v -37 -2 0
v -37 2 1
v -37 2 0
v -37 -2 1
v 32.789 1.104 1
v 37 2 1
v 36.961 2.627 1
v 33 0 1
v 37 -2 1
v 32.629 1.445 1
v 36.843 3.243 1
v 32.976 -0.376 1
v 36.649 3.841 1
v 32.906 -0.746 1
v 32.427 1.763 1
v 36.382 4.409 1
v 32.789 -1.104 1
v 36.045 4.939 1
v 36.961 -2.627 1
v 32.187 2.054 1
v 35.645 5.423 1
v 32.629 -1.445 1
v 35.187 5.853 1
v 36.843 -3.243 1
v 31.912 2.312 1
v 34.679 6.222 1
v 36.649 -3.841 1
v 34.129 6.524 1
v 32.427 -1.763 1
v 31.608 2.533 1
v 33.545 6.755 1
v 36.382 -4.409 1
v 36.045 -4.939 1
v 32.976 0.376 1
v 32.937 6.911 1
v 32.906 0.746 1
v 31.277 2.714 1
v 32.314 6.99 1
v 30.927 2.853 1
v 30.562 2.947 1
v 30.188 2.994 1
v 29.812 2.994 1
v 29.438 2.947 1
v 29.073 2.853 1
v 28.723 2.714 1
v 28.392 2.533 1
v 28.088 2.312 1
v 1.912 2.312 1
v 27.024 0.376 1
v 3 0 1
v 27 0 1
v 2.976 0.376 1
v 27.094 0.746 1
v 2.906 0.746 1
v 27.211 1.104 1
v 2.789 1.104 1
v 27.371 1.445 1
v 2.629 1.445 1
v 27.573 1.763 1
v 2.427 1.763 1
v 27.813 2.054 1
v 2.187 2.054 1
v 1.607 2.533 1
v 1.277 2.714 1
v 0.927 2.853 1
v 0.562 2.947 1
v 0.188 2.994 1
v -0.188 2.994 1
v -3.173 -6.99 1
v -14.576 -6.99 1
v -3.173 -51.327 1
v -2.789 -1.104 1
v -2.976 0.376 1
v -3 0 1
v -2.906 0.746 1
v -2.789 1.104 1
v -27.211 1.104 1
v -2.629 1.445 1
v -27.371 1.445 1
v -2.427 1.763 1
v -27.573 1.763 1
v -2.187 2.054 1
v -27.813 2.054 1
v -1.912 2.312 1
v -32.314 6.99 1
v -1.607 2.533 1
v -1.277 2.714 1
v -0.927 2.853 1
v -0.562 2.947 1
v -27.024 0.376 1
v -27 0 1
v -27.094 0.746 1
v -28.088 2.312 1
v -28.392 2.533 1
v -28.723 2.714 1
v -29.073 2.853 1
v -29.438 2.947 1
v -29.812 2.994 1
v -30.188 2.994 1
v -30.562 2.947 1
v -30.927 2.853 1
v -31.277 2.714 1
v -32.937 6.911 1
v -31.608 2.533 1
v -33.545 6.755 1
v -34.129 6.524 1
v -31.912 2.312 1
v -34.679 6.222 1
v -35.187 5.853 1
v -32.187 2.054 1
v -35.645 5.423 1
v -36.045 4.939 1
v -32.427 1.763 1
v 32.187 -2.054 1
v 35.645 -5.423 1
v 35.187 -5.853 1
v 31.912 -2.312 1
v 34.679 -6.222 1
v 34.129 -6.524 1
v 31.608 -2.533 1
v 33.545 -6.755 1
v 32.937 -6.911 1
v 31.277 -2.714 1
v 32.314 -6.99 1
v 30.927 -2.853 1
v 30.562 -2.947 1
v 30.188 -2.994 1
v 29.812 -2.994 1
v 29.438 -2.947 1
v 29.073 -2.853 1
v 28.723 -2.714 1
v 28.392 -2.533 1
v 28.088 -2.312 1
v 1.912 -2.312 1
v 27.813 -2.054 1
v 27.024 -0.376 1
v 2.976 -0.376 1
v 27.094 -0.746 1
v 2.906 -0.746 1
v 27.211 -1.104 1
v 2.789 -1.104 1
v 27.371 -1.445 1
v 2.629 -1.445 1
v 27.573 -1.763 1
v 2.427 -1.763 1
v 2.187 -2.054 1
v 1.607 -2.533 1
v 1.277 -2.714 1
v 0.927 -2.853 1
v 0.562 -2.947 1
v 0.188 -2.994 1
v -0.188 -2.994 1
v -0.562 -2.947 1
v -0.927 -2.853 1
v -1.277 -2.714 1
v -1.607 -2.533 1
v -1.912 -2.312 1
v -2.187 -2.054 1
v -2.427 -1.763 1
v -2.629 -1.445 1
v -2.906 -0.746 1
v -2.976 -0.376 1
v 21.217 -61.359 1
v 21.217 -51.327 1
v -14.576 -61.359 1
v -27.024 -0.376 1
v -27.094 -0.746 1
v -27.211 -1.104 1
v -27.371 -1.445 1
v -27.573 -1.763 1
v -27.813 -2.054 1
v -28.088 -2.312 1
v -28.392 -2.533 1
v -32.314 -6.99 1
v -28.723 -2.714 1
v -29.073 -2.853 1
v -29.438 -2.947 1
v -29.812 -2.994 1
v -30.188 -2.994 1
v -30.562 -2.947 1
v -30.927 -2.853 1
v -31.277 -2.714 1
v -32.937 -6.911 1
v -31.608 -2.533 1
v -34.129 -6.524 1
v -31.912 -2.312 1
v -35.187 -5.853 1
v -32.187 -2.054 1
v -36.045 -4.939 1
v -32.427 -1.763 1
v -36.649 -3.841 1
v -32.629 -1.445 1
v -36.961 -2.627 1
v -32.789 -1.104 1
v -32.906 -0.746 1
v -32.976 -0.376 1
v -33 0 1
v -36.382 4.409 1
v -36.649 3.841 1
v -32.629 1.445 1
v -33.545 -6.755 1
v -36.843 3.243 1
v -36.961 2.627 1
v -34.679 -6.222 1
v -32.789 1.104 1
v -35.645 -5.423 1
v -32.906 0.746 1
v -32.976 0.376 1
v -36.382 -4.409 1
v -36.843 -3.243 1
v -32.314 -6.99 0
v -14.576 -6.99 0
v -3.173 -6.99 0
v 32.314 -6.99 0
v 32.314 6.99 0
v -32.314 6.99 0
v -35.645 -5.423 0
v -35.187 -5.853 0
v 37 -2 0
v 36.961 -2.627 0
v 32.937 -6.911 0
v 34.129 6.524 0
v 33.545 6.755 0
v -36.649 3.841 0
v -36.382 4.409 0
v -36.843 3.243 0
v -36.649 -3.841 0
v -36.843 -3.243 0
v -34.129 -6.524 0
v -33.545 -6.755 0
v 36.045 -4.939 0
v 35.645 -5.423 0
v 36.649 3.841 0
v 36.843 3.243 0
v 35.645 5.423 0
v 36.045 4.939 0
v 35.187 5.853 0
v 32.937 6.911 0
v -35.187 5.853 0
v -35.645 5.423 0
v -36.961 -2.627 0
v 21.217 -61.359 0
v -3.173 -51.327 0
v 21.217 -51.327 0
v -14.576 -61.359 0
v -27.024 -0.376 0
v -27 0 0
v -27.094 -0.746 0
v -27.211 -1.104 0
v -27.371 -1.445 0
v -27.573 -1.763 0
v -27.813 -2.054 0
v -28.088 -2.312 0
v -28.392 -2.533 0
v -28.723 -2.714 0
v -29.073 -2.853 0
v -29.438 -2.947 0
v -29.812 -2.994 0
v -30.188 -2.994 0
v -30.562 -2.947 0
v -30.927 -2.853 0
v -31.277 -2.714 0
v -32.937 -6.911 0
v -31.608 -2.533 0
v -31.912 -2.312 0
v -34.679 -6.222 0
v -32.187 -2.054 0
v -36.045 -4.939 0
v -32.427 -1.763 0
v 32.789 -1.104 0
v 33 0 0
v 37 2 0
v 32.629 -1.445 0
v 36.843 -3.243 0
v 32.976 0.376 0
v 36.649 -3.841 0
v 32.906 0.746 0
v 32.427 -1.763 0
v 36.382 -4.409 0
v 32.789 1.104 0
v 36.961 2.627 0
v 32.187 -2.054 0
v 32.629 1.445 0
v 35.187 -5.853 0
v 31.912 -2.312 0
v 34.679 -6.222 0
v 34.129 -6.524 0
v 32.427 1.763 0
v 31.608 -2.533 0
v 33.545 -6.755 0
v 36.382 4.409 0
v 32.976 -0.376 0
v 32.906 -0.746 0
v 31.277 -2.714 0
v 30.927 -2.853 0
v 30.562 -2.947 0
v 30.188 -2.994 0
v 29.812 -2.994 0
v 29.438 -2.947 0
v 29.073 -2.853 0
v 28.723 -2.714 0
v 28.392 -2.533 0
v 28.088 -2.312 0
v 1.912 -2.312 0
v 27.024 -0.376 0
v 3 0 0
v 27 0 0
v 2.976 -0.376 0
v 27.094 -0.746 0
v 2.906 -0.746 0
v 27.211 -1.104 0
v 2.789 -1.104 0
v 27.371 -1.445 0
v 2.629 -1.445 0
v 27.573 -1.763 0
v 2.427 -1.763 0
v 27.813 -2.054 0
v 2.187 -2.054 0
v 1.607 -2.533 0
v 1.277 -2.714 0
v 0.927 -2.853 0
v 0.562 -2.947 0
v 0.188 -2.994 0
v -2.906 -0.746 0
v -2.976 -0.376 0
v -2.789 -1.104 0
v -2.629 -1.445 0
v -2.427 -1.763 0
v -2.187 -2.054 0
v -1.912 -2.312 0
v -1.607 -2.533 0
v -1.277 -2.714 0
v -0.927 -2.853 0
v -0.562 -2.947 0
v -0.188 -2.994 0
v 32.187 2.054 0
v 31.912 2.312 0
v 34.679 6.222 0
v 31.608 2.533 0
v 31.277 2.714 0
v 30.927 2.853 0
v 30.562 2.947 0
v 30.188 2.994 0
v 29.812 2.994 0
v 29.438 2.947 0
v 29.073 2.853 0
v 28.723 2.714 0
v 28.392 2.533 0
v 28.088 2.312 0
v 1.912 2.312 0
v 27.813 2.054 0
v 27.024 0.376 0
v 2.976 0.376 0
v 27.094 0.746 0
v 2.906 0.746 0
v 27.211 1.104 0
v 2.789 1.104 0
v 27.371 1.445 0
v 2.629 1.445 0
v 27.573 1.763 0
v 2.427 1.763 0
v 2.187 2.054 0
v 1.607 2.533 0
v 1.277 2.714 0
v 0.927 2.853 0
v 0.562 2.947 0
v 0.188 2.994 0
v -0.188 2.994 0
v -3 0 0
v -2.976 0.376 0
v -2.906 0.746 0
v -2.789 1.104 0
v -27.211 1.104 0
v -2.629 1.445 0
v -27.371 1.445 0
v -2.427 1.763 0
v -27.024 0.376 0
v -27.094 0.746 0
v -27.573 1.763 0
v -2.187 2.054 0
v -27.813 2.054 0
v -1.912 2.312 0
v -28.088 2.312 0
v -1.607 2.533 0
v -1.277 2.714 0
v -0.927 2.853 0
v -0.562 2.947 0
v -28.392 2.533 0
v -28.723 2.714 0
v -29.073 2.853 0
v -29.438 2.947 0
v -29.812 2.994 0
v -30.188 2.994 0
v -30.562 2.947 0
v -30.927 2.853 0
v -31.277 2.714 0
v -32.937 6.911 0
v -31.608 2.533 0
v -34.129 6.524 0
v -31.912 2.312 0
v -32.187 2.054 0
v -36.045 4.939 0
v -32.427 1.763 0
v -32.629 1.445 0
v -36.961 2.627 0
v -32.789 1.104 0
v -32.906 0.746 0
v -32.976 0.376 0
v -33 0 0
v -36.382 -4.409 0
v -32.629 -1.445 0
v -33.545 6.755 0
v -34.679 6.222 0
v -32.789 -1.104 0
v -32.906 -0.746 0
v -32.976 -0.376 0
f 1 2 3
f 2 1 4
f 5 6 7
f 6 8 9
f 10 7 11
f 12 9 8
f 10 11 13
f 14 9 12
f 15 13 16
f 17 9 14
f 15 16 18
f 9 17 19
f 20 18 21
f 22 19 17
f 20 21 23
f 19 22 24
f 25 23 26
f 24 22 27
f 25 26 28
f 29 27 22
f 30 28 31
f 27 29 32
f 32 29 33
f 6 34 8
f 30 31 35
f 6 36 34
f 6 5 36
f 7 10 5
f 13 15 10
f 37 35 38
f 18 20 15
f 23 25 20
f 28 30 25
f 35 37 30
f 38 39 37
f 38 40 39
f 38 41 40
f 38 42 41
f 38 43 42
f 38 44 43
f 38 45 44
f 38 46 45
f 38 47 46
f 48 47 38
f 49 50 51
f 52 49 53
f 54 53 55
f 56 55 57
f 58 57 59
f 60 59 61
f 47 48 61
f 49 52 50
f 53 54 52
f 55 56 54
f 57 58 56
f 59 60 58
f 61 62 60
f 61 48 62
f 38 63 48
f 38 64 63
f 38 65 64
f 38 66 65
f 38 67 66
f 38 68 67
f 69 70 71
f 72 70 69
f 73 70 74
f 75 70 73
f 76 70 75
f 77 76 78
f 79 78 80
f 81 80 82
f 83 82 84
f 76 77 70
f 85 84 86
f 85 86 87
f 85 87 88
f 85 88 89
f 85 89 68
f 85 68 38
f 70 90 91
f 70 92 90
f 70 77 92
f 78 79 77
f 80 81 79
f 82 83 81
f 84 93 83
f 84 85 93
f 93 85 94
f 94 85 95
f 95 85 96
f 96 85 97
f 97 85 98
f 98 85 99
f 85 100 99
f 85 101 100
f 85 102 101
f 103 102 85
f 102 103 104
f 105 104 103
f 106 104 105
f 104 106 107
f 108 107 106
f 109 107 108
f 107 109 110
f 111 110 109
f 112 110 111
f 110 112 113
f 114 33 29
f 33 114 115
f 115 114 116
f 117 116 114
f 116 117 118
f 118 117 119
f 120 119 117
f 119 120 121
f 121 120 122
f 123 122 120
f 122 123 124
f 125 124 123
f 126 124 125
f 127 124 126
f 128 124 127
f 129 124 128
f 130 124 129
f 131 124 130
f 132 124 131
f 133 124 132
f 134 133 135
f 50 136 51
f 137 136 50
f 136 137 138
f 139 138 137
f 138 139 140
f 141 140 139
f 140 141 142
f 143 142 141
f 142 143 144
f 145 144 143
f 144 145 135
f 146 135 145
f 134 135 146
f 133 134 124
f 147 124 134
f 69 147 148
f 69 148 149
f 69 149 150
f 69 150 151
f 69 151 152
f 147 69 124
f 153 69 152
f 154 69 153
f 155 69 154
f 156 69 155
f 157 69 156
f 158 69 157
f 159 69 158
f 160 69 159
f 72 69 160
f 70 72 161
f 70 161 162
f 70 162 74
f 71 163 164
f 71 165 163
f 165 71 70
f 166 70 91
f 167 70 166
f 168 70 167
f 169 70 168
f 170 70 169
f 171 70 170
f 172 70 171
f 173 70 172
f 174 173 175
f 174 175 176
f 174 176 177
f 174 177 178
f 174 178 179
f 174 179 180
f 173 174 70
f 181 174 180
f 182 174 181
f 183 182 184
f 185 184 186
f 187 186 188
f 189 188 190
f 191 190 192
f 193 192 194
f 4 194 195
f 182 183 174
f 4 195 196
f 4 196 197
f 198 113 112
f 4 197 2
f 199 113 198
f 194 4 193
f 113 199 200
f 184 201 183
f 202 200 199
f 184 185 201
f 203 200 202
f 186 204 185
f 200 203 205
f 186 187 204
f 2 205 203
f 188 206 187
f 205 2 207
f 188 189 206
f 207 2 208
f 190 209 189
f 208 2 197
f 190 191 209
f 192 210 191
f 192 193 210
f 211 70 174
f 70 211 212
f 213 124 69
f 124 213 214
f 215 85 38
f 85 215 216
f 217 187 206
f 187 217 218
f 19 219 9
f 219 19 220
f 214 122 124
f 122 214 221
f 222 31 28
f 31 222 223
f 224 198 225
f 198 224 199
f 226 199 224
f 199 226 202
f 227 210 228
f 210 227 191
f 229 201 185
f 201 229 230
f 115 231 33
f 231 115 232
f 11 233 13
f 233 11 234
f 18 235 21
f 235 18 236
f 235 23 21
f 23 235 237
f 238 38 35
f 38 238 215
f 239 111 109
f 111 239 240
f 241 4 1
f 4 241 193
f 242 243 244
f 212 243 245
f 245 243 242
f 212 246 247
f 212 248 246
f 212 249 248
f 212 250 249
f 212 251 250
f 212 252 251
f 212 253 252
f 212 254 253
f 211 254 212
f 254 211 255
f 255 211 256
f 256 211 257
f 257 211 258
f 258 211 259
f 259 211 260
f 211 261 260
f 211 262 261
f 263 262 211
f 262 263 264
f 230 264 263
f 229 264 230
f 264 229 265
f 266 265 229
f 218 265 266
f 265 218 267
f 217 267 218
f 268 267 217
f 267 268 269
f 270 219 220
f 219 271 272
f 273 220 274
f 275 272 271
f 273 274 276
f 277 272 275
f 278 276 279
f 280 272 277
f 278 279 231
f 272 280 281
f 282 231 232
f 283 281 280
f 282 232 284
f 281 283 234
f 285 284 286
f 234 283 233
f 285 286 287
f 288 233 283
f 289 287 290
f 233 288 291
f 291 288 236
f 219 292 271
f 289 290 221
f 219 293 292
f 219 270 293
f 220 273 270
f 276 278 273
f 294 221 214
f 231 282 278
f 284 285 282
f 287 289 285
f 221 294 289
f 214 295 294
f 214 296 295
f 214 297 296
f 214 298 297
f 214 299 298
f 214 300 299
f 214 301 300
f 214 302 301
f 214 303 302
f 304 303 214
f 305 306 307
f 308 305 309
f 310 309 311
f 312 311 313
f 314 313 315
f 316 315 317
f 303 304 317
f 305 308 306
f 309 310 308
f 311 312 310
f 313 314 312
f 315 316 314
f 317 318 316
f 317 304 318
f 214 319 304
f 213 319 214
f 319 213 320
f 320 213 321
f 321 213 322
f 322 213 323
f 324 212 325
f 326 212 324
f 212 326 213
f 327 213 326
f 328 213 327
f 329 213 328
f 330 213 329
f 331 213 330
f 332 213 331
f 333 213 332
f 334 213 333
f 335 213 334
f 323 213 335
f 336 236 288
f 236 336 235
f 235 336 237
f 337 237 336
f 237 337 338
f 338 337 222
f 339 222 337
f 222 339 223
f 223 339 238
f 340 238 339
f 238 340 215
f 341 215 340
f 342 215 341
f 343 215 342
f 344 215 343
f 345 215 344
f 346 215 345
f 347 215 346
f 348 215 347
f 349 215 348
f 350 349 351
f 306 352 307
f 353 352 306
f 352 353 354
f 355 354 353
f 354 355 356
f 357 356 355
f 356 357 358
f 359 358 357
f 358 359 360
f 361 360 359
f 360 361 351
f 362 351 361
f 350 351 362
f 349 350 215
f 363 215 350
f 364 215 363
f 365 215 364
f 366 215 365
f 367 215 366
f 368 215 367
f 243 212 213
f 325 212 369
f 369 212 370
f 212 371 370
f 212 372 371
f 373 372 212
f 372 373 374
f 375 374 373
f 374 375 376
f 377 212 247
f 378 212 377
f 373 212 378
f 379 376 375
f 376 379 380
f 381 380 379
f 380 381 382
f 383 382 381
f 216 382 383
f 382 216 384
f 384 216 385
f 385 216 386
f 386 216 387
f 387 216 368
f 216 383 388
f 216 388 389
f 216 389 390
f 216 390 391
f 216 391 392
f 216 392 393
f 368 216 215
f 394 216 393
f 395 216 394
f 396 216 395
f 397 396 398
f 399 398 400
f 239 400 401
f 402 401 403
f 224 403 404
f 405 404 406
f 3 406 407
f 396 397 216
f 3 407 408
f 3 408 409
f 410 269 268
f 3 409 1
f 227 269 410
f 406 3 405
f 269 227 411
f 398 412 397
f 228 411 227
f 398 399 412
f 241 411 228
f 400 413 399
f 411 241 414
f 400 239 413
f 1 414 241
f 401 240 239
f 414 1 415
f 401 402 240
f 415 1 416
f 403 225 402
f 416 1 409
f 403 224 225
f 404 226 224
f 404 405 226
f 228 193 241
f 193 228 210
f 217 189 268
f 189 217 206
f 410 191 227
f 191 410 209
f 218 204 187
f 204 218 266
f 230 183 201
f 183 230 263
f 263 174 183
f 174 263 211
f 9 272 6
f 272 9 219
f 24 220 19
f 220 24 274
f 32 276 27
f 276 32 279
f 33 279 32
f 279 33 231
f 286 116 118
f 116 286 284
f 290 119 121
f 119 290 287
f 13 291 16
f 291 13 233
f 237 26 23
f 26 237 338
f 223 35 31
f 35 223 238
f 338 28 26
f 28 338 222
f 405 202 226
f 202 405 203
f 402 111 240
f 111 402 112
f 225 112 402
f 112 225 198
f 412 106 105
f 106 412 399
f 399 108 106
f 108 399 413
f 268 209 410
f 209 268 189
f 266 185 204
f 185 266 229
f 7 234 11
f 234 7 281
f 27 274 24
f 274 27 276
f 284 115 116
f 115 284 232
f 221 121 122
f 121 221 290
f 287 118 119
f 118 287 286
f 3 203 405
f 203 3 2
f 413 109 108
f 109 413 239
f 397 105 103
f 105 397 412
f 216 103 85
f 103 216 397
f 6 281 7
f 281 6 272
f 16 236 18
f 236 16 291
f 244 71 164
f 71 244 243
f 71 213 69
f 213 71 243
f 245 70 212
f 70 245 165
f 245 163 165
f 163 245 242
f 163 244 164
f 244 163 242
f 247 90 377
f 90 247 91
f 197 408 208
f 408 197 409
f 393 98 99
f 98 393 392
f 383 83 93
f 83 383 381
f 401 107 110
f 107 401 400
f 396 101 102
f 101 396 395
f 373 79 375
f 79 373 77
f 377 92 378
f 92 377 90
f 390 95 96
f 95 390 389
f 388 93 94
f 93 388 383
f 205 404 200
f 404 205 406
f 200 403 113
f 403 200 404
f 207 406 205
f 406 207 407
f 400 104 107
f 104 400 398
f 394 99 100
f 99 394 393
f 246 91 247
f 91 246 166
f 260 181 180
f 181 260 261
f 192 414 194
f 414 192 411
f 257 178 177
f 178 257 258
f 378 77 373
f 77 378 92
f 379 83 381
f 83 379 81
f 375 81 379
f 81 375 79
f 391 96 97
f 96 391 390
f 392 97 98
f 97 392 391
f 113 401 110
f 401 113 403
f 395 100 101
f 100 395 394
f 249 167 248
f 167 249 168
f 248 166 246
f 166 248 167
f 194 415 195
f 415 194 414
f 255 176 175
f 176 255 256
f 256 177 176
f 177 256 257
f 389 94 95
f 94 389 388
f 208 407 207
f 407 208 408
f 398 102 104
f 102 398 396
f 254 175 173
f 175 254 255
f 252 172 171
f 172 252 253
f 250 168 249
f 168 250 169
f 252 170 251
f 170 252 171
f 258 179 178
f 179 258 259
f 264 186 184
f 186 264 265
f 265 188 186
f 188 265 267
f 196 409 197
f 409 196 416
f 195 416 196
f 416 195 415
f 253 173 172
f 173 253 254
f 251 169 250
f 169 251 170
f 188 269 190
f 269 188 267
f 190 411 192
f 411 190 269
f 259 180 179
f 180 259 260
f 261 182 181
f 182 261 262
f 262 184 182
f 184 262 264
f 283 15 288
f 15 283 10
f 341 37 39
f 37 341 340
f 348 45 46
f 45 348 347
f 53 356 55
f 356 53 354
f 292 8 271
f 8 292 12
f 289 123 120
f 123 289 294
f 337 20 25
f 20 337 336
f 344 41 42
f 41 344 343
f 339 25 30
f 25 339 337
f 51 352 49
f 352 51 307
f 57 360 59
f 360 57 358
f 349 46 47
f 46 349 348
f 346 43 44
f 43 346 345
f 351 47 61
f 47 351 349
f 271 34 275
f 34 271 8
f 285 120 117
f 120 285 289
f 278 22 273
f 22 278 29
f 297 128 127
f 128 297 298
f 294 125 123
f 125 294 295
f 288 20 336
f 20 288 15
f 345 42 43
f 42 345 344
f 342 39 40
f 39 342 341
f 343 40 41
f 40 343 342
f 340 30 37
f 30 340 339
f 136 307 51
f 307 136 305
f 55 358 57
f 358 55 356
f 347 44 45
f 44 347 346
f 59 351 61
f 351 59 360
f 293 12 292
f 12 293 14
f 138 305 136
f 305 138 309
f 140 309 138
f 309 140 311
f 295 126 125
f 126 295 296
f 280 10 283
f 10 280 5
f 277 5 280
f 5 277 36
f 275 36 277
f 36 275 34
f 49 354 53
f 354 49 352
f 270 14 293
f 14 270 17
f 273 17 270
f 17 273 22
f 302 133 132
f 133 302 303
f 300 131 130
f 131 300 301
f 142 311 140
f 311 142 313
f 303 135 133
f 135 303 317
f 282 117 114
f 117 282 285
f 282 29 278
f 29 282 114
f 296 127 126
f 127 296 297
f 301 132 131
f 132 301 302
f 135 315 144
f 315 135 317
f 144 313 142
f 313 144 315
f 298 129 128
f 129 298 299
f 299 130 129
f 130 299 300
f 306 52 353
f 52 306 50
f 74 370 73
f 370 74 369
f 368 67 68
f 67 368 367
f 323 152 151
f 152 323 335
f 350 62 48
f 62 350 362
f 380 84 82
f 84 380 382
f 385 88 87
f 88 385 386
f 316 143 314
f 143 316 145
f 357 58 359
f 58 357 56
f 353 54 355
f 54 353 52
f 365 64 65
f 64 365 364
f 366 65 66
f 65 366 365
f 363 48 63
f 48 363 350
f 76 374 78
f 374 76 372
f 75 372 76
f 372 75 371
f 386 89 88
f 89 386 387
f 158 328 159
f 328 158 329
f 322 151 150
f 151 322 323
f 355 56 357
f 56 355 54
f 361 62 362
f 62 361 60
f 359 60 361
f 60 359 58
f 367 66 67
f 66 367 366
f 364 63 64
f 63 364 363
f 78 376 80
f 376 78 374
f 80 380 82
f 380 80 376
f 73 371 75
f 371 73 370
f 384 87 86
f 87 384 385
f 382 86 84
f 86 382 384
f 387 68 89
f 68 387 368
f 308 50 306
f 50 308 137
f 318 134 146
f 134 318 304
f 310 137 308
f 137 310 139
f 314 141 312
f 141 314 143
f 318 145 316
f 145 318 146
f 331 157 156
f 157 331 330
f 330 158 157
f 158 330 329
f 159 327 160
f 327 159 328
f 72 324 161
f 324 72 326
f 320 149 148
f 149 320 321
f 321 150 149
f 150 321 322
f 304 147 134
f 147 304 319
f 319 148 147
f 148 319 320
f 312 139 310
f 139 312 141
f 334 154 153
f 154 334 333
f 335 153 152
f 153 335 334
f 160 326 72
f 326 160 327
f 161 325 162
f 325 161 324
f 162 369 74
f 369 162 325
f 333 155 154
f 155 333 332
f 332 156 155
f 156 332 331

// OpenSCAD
$fn = 50;


difference() {
	union() {
		translate(v = [0, 0, 0]) {
			rotate(a = [0, 0, 0]) {
				hull() {
					translate(v = [-32.0000000000, 2.0000000000, 0]) {
						rotate(a = [0, 0, 0]) {
							translate(v = [0, 0, 0]) {
								rotate(a = [0, 0, 0]) {
									cylinder(h = 1, r = 5);
								}
							}
						}
					}
					translate(v = [32.0000000000, 2.0000000000, 0]) {
						rotate(a = [0, 0, 0]) {
							translate(v = [0, 0, 0]) {
								rotate(a = [0, 0, 0]) {
									cylinder(h = 1, r = 5);
								}
							}
						}
					}
					translate(v = [-32.0000000000, -2.0000000000, 0]) {
						rotate(a = [0, 0, 0]) {
							translate(v = [0, 0, 0]) {
								rotate(a = [0, 0, 0]) {
									cylinder(h = 1, r = 5);
								}
							}
						}
					}
					translate(v = [32.0000000000, -2.0000000000, 0]) {
						rotate(a = [0, 0, 0]) {
							translate(v = [0, 0, 0]) {
								rotate(a = [0, 0, 0]) {
									cylinder(h = 1, r = 5);
								}
							}
						}
					}
				}
			}
		}
		translate(v = [0, -5, 0]) {
			rotate(a = [0, 0, 0]) {
				linear_extrude(height = 1) {
					text(font = "DejaVu Sans Mono:style=Bold", halign = "center", size = 57.0000000000, text = "L", valign = "top");
				}
			}
		}
	}
	union() {
		translate(v = [-30.0000000000, 0.0000000000, -125.0000000000]) {
			rotate(a = [0, 0, 0]) {
				cylinder(h = 250, r = 3.0000000000);
			}
		}
		translate(v = [30.0000000000, 0.0000000000, -125.0000000000]) {
			rotate(a = [0, 0, 0]) {
				cylinder(h = 250, r = 3.0000000000);
			}
		}
		translate(v = [30.0000000000, 0.0000000000, -125.0000000000]) {
			rotate(a = [0, 0, 0]) {
				cylinder(h = 250, r = 3.0000000000);
			}
		}
		translate(v = [0, 0, -125.0000000000]) {
			rotate(a = [0, 0, 0]) {
				cylinder(h = 250, r = 3.0000000000);
			}
		}
	}
}
